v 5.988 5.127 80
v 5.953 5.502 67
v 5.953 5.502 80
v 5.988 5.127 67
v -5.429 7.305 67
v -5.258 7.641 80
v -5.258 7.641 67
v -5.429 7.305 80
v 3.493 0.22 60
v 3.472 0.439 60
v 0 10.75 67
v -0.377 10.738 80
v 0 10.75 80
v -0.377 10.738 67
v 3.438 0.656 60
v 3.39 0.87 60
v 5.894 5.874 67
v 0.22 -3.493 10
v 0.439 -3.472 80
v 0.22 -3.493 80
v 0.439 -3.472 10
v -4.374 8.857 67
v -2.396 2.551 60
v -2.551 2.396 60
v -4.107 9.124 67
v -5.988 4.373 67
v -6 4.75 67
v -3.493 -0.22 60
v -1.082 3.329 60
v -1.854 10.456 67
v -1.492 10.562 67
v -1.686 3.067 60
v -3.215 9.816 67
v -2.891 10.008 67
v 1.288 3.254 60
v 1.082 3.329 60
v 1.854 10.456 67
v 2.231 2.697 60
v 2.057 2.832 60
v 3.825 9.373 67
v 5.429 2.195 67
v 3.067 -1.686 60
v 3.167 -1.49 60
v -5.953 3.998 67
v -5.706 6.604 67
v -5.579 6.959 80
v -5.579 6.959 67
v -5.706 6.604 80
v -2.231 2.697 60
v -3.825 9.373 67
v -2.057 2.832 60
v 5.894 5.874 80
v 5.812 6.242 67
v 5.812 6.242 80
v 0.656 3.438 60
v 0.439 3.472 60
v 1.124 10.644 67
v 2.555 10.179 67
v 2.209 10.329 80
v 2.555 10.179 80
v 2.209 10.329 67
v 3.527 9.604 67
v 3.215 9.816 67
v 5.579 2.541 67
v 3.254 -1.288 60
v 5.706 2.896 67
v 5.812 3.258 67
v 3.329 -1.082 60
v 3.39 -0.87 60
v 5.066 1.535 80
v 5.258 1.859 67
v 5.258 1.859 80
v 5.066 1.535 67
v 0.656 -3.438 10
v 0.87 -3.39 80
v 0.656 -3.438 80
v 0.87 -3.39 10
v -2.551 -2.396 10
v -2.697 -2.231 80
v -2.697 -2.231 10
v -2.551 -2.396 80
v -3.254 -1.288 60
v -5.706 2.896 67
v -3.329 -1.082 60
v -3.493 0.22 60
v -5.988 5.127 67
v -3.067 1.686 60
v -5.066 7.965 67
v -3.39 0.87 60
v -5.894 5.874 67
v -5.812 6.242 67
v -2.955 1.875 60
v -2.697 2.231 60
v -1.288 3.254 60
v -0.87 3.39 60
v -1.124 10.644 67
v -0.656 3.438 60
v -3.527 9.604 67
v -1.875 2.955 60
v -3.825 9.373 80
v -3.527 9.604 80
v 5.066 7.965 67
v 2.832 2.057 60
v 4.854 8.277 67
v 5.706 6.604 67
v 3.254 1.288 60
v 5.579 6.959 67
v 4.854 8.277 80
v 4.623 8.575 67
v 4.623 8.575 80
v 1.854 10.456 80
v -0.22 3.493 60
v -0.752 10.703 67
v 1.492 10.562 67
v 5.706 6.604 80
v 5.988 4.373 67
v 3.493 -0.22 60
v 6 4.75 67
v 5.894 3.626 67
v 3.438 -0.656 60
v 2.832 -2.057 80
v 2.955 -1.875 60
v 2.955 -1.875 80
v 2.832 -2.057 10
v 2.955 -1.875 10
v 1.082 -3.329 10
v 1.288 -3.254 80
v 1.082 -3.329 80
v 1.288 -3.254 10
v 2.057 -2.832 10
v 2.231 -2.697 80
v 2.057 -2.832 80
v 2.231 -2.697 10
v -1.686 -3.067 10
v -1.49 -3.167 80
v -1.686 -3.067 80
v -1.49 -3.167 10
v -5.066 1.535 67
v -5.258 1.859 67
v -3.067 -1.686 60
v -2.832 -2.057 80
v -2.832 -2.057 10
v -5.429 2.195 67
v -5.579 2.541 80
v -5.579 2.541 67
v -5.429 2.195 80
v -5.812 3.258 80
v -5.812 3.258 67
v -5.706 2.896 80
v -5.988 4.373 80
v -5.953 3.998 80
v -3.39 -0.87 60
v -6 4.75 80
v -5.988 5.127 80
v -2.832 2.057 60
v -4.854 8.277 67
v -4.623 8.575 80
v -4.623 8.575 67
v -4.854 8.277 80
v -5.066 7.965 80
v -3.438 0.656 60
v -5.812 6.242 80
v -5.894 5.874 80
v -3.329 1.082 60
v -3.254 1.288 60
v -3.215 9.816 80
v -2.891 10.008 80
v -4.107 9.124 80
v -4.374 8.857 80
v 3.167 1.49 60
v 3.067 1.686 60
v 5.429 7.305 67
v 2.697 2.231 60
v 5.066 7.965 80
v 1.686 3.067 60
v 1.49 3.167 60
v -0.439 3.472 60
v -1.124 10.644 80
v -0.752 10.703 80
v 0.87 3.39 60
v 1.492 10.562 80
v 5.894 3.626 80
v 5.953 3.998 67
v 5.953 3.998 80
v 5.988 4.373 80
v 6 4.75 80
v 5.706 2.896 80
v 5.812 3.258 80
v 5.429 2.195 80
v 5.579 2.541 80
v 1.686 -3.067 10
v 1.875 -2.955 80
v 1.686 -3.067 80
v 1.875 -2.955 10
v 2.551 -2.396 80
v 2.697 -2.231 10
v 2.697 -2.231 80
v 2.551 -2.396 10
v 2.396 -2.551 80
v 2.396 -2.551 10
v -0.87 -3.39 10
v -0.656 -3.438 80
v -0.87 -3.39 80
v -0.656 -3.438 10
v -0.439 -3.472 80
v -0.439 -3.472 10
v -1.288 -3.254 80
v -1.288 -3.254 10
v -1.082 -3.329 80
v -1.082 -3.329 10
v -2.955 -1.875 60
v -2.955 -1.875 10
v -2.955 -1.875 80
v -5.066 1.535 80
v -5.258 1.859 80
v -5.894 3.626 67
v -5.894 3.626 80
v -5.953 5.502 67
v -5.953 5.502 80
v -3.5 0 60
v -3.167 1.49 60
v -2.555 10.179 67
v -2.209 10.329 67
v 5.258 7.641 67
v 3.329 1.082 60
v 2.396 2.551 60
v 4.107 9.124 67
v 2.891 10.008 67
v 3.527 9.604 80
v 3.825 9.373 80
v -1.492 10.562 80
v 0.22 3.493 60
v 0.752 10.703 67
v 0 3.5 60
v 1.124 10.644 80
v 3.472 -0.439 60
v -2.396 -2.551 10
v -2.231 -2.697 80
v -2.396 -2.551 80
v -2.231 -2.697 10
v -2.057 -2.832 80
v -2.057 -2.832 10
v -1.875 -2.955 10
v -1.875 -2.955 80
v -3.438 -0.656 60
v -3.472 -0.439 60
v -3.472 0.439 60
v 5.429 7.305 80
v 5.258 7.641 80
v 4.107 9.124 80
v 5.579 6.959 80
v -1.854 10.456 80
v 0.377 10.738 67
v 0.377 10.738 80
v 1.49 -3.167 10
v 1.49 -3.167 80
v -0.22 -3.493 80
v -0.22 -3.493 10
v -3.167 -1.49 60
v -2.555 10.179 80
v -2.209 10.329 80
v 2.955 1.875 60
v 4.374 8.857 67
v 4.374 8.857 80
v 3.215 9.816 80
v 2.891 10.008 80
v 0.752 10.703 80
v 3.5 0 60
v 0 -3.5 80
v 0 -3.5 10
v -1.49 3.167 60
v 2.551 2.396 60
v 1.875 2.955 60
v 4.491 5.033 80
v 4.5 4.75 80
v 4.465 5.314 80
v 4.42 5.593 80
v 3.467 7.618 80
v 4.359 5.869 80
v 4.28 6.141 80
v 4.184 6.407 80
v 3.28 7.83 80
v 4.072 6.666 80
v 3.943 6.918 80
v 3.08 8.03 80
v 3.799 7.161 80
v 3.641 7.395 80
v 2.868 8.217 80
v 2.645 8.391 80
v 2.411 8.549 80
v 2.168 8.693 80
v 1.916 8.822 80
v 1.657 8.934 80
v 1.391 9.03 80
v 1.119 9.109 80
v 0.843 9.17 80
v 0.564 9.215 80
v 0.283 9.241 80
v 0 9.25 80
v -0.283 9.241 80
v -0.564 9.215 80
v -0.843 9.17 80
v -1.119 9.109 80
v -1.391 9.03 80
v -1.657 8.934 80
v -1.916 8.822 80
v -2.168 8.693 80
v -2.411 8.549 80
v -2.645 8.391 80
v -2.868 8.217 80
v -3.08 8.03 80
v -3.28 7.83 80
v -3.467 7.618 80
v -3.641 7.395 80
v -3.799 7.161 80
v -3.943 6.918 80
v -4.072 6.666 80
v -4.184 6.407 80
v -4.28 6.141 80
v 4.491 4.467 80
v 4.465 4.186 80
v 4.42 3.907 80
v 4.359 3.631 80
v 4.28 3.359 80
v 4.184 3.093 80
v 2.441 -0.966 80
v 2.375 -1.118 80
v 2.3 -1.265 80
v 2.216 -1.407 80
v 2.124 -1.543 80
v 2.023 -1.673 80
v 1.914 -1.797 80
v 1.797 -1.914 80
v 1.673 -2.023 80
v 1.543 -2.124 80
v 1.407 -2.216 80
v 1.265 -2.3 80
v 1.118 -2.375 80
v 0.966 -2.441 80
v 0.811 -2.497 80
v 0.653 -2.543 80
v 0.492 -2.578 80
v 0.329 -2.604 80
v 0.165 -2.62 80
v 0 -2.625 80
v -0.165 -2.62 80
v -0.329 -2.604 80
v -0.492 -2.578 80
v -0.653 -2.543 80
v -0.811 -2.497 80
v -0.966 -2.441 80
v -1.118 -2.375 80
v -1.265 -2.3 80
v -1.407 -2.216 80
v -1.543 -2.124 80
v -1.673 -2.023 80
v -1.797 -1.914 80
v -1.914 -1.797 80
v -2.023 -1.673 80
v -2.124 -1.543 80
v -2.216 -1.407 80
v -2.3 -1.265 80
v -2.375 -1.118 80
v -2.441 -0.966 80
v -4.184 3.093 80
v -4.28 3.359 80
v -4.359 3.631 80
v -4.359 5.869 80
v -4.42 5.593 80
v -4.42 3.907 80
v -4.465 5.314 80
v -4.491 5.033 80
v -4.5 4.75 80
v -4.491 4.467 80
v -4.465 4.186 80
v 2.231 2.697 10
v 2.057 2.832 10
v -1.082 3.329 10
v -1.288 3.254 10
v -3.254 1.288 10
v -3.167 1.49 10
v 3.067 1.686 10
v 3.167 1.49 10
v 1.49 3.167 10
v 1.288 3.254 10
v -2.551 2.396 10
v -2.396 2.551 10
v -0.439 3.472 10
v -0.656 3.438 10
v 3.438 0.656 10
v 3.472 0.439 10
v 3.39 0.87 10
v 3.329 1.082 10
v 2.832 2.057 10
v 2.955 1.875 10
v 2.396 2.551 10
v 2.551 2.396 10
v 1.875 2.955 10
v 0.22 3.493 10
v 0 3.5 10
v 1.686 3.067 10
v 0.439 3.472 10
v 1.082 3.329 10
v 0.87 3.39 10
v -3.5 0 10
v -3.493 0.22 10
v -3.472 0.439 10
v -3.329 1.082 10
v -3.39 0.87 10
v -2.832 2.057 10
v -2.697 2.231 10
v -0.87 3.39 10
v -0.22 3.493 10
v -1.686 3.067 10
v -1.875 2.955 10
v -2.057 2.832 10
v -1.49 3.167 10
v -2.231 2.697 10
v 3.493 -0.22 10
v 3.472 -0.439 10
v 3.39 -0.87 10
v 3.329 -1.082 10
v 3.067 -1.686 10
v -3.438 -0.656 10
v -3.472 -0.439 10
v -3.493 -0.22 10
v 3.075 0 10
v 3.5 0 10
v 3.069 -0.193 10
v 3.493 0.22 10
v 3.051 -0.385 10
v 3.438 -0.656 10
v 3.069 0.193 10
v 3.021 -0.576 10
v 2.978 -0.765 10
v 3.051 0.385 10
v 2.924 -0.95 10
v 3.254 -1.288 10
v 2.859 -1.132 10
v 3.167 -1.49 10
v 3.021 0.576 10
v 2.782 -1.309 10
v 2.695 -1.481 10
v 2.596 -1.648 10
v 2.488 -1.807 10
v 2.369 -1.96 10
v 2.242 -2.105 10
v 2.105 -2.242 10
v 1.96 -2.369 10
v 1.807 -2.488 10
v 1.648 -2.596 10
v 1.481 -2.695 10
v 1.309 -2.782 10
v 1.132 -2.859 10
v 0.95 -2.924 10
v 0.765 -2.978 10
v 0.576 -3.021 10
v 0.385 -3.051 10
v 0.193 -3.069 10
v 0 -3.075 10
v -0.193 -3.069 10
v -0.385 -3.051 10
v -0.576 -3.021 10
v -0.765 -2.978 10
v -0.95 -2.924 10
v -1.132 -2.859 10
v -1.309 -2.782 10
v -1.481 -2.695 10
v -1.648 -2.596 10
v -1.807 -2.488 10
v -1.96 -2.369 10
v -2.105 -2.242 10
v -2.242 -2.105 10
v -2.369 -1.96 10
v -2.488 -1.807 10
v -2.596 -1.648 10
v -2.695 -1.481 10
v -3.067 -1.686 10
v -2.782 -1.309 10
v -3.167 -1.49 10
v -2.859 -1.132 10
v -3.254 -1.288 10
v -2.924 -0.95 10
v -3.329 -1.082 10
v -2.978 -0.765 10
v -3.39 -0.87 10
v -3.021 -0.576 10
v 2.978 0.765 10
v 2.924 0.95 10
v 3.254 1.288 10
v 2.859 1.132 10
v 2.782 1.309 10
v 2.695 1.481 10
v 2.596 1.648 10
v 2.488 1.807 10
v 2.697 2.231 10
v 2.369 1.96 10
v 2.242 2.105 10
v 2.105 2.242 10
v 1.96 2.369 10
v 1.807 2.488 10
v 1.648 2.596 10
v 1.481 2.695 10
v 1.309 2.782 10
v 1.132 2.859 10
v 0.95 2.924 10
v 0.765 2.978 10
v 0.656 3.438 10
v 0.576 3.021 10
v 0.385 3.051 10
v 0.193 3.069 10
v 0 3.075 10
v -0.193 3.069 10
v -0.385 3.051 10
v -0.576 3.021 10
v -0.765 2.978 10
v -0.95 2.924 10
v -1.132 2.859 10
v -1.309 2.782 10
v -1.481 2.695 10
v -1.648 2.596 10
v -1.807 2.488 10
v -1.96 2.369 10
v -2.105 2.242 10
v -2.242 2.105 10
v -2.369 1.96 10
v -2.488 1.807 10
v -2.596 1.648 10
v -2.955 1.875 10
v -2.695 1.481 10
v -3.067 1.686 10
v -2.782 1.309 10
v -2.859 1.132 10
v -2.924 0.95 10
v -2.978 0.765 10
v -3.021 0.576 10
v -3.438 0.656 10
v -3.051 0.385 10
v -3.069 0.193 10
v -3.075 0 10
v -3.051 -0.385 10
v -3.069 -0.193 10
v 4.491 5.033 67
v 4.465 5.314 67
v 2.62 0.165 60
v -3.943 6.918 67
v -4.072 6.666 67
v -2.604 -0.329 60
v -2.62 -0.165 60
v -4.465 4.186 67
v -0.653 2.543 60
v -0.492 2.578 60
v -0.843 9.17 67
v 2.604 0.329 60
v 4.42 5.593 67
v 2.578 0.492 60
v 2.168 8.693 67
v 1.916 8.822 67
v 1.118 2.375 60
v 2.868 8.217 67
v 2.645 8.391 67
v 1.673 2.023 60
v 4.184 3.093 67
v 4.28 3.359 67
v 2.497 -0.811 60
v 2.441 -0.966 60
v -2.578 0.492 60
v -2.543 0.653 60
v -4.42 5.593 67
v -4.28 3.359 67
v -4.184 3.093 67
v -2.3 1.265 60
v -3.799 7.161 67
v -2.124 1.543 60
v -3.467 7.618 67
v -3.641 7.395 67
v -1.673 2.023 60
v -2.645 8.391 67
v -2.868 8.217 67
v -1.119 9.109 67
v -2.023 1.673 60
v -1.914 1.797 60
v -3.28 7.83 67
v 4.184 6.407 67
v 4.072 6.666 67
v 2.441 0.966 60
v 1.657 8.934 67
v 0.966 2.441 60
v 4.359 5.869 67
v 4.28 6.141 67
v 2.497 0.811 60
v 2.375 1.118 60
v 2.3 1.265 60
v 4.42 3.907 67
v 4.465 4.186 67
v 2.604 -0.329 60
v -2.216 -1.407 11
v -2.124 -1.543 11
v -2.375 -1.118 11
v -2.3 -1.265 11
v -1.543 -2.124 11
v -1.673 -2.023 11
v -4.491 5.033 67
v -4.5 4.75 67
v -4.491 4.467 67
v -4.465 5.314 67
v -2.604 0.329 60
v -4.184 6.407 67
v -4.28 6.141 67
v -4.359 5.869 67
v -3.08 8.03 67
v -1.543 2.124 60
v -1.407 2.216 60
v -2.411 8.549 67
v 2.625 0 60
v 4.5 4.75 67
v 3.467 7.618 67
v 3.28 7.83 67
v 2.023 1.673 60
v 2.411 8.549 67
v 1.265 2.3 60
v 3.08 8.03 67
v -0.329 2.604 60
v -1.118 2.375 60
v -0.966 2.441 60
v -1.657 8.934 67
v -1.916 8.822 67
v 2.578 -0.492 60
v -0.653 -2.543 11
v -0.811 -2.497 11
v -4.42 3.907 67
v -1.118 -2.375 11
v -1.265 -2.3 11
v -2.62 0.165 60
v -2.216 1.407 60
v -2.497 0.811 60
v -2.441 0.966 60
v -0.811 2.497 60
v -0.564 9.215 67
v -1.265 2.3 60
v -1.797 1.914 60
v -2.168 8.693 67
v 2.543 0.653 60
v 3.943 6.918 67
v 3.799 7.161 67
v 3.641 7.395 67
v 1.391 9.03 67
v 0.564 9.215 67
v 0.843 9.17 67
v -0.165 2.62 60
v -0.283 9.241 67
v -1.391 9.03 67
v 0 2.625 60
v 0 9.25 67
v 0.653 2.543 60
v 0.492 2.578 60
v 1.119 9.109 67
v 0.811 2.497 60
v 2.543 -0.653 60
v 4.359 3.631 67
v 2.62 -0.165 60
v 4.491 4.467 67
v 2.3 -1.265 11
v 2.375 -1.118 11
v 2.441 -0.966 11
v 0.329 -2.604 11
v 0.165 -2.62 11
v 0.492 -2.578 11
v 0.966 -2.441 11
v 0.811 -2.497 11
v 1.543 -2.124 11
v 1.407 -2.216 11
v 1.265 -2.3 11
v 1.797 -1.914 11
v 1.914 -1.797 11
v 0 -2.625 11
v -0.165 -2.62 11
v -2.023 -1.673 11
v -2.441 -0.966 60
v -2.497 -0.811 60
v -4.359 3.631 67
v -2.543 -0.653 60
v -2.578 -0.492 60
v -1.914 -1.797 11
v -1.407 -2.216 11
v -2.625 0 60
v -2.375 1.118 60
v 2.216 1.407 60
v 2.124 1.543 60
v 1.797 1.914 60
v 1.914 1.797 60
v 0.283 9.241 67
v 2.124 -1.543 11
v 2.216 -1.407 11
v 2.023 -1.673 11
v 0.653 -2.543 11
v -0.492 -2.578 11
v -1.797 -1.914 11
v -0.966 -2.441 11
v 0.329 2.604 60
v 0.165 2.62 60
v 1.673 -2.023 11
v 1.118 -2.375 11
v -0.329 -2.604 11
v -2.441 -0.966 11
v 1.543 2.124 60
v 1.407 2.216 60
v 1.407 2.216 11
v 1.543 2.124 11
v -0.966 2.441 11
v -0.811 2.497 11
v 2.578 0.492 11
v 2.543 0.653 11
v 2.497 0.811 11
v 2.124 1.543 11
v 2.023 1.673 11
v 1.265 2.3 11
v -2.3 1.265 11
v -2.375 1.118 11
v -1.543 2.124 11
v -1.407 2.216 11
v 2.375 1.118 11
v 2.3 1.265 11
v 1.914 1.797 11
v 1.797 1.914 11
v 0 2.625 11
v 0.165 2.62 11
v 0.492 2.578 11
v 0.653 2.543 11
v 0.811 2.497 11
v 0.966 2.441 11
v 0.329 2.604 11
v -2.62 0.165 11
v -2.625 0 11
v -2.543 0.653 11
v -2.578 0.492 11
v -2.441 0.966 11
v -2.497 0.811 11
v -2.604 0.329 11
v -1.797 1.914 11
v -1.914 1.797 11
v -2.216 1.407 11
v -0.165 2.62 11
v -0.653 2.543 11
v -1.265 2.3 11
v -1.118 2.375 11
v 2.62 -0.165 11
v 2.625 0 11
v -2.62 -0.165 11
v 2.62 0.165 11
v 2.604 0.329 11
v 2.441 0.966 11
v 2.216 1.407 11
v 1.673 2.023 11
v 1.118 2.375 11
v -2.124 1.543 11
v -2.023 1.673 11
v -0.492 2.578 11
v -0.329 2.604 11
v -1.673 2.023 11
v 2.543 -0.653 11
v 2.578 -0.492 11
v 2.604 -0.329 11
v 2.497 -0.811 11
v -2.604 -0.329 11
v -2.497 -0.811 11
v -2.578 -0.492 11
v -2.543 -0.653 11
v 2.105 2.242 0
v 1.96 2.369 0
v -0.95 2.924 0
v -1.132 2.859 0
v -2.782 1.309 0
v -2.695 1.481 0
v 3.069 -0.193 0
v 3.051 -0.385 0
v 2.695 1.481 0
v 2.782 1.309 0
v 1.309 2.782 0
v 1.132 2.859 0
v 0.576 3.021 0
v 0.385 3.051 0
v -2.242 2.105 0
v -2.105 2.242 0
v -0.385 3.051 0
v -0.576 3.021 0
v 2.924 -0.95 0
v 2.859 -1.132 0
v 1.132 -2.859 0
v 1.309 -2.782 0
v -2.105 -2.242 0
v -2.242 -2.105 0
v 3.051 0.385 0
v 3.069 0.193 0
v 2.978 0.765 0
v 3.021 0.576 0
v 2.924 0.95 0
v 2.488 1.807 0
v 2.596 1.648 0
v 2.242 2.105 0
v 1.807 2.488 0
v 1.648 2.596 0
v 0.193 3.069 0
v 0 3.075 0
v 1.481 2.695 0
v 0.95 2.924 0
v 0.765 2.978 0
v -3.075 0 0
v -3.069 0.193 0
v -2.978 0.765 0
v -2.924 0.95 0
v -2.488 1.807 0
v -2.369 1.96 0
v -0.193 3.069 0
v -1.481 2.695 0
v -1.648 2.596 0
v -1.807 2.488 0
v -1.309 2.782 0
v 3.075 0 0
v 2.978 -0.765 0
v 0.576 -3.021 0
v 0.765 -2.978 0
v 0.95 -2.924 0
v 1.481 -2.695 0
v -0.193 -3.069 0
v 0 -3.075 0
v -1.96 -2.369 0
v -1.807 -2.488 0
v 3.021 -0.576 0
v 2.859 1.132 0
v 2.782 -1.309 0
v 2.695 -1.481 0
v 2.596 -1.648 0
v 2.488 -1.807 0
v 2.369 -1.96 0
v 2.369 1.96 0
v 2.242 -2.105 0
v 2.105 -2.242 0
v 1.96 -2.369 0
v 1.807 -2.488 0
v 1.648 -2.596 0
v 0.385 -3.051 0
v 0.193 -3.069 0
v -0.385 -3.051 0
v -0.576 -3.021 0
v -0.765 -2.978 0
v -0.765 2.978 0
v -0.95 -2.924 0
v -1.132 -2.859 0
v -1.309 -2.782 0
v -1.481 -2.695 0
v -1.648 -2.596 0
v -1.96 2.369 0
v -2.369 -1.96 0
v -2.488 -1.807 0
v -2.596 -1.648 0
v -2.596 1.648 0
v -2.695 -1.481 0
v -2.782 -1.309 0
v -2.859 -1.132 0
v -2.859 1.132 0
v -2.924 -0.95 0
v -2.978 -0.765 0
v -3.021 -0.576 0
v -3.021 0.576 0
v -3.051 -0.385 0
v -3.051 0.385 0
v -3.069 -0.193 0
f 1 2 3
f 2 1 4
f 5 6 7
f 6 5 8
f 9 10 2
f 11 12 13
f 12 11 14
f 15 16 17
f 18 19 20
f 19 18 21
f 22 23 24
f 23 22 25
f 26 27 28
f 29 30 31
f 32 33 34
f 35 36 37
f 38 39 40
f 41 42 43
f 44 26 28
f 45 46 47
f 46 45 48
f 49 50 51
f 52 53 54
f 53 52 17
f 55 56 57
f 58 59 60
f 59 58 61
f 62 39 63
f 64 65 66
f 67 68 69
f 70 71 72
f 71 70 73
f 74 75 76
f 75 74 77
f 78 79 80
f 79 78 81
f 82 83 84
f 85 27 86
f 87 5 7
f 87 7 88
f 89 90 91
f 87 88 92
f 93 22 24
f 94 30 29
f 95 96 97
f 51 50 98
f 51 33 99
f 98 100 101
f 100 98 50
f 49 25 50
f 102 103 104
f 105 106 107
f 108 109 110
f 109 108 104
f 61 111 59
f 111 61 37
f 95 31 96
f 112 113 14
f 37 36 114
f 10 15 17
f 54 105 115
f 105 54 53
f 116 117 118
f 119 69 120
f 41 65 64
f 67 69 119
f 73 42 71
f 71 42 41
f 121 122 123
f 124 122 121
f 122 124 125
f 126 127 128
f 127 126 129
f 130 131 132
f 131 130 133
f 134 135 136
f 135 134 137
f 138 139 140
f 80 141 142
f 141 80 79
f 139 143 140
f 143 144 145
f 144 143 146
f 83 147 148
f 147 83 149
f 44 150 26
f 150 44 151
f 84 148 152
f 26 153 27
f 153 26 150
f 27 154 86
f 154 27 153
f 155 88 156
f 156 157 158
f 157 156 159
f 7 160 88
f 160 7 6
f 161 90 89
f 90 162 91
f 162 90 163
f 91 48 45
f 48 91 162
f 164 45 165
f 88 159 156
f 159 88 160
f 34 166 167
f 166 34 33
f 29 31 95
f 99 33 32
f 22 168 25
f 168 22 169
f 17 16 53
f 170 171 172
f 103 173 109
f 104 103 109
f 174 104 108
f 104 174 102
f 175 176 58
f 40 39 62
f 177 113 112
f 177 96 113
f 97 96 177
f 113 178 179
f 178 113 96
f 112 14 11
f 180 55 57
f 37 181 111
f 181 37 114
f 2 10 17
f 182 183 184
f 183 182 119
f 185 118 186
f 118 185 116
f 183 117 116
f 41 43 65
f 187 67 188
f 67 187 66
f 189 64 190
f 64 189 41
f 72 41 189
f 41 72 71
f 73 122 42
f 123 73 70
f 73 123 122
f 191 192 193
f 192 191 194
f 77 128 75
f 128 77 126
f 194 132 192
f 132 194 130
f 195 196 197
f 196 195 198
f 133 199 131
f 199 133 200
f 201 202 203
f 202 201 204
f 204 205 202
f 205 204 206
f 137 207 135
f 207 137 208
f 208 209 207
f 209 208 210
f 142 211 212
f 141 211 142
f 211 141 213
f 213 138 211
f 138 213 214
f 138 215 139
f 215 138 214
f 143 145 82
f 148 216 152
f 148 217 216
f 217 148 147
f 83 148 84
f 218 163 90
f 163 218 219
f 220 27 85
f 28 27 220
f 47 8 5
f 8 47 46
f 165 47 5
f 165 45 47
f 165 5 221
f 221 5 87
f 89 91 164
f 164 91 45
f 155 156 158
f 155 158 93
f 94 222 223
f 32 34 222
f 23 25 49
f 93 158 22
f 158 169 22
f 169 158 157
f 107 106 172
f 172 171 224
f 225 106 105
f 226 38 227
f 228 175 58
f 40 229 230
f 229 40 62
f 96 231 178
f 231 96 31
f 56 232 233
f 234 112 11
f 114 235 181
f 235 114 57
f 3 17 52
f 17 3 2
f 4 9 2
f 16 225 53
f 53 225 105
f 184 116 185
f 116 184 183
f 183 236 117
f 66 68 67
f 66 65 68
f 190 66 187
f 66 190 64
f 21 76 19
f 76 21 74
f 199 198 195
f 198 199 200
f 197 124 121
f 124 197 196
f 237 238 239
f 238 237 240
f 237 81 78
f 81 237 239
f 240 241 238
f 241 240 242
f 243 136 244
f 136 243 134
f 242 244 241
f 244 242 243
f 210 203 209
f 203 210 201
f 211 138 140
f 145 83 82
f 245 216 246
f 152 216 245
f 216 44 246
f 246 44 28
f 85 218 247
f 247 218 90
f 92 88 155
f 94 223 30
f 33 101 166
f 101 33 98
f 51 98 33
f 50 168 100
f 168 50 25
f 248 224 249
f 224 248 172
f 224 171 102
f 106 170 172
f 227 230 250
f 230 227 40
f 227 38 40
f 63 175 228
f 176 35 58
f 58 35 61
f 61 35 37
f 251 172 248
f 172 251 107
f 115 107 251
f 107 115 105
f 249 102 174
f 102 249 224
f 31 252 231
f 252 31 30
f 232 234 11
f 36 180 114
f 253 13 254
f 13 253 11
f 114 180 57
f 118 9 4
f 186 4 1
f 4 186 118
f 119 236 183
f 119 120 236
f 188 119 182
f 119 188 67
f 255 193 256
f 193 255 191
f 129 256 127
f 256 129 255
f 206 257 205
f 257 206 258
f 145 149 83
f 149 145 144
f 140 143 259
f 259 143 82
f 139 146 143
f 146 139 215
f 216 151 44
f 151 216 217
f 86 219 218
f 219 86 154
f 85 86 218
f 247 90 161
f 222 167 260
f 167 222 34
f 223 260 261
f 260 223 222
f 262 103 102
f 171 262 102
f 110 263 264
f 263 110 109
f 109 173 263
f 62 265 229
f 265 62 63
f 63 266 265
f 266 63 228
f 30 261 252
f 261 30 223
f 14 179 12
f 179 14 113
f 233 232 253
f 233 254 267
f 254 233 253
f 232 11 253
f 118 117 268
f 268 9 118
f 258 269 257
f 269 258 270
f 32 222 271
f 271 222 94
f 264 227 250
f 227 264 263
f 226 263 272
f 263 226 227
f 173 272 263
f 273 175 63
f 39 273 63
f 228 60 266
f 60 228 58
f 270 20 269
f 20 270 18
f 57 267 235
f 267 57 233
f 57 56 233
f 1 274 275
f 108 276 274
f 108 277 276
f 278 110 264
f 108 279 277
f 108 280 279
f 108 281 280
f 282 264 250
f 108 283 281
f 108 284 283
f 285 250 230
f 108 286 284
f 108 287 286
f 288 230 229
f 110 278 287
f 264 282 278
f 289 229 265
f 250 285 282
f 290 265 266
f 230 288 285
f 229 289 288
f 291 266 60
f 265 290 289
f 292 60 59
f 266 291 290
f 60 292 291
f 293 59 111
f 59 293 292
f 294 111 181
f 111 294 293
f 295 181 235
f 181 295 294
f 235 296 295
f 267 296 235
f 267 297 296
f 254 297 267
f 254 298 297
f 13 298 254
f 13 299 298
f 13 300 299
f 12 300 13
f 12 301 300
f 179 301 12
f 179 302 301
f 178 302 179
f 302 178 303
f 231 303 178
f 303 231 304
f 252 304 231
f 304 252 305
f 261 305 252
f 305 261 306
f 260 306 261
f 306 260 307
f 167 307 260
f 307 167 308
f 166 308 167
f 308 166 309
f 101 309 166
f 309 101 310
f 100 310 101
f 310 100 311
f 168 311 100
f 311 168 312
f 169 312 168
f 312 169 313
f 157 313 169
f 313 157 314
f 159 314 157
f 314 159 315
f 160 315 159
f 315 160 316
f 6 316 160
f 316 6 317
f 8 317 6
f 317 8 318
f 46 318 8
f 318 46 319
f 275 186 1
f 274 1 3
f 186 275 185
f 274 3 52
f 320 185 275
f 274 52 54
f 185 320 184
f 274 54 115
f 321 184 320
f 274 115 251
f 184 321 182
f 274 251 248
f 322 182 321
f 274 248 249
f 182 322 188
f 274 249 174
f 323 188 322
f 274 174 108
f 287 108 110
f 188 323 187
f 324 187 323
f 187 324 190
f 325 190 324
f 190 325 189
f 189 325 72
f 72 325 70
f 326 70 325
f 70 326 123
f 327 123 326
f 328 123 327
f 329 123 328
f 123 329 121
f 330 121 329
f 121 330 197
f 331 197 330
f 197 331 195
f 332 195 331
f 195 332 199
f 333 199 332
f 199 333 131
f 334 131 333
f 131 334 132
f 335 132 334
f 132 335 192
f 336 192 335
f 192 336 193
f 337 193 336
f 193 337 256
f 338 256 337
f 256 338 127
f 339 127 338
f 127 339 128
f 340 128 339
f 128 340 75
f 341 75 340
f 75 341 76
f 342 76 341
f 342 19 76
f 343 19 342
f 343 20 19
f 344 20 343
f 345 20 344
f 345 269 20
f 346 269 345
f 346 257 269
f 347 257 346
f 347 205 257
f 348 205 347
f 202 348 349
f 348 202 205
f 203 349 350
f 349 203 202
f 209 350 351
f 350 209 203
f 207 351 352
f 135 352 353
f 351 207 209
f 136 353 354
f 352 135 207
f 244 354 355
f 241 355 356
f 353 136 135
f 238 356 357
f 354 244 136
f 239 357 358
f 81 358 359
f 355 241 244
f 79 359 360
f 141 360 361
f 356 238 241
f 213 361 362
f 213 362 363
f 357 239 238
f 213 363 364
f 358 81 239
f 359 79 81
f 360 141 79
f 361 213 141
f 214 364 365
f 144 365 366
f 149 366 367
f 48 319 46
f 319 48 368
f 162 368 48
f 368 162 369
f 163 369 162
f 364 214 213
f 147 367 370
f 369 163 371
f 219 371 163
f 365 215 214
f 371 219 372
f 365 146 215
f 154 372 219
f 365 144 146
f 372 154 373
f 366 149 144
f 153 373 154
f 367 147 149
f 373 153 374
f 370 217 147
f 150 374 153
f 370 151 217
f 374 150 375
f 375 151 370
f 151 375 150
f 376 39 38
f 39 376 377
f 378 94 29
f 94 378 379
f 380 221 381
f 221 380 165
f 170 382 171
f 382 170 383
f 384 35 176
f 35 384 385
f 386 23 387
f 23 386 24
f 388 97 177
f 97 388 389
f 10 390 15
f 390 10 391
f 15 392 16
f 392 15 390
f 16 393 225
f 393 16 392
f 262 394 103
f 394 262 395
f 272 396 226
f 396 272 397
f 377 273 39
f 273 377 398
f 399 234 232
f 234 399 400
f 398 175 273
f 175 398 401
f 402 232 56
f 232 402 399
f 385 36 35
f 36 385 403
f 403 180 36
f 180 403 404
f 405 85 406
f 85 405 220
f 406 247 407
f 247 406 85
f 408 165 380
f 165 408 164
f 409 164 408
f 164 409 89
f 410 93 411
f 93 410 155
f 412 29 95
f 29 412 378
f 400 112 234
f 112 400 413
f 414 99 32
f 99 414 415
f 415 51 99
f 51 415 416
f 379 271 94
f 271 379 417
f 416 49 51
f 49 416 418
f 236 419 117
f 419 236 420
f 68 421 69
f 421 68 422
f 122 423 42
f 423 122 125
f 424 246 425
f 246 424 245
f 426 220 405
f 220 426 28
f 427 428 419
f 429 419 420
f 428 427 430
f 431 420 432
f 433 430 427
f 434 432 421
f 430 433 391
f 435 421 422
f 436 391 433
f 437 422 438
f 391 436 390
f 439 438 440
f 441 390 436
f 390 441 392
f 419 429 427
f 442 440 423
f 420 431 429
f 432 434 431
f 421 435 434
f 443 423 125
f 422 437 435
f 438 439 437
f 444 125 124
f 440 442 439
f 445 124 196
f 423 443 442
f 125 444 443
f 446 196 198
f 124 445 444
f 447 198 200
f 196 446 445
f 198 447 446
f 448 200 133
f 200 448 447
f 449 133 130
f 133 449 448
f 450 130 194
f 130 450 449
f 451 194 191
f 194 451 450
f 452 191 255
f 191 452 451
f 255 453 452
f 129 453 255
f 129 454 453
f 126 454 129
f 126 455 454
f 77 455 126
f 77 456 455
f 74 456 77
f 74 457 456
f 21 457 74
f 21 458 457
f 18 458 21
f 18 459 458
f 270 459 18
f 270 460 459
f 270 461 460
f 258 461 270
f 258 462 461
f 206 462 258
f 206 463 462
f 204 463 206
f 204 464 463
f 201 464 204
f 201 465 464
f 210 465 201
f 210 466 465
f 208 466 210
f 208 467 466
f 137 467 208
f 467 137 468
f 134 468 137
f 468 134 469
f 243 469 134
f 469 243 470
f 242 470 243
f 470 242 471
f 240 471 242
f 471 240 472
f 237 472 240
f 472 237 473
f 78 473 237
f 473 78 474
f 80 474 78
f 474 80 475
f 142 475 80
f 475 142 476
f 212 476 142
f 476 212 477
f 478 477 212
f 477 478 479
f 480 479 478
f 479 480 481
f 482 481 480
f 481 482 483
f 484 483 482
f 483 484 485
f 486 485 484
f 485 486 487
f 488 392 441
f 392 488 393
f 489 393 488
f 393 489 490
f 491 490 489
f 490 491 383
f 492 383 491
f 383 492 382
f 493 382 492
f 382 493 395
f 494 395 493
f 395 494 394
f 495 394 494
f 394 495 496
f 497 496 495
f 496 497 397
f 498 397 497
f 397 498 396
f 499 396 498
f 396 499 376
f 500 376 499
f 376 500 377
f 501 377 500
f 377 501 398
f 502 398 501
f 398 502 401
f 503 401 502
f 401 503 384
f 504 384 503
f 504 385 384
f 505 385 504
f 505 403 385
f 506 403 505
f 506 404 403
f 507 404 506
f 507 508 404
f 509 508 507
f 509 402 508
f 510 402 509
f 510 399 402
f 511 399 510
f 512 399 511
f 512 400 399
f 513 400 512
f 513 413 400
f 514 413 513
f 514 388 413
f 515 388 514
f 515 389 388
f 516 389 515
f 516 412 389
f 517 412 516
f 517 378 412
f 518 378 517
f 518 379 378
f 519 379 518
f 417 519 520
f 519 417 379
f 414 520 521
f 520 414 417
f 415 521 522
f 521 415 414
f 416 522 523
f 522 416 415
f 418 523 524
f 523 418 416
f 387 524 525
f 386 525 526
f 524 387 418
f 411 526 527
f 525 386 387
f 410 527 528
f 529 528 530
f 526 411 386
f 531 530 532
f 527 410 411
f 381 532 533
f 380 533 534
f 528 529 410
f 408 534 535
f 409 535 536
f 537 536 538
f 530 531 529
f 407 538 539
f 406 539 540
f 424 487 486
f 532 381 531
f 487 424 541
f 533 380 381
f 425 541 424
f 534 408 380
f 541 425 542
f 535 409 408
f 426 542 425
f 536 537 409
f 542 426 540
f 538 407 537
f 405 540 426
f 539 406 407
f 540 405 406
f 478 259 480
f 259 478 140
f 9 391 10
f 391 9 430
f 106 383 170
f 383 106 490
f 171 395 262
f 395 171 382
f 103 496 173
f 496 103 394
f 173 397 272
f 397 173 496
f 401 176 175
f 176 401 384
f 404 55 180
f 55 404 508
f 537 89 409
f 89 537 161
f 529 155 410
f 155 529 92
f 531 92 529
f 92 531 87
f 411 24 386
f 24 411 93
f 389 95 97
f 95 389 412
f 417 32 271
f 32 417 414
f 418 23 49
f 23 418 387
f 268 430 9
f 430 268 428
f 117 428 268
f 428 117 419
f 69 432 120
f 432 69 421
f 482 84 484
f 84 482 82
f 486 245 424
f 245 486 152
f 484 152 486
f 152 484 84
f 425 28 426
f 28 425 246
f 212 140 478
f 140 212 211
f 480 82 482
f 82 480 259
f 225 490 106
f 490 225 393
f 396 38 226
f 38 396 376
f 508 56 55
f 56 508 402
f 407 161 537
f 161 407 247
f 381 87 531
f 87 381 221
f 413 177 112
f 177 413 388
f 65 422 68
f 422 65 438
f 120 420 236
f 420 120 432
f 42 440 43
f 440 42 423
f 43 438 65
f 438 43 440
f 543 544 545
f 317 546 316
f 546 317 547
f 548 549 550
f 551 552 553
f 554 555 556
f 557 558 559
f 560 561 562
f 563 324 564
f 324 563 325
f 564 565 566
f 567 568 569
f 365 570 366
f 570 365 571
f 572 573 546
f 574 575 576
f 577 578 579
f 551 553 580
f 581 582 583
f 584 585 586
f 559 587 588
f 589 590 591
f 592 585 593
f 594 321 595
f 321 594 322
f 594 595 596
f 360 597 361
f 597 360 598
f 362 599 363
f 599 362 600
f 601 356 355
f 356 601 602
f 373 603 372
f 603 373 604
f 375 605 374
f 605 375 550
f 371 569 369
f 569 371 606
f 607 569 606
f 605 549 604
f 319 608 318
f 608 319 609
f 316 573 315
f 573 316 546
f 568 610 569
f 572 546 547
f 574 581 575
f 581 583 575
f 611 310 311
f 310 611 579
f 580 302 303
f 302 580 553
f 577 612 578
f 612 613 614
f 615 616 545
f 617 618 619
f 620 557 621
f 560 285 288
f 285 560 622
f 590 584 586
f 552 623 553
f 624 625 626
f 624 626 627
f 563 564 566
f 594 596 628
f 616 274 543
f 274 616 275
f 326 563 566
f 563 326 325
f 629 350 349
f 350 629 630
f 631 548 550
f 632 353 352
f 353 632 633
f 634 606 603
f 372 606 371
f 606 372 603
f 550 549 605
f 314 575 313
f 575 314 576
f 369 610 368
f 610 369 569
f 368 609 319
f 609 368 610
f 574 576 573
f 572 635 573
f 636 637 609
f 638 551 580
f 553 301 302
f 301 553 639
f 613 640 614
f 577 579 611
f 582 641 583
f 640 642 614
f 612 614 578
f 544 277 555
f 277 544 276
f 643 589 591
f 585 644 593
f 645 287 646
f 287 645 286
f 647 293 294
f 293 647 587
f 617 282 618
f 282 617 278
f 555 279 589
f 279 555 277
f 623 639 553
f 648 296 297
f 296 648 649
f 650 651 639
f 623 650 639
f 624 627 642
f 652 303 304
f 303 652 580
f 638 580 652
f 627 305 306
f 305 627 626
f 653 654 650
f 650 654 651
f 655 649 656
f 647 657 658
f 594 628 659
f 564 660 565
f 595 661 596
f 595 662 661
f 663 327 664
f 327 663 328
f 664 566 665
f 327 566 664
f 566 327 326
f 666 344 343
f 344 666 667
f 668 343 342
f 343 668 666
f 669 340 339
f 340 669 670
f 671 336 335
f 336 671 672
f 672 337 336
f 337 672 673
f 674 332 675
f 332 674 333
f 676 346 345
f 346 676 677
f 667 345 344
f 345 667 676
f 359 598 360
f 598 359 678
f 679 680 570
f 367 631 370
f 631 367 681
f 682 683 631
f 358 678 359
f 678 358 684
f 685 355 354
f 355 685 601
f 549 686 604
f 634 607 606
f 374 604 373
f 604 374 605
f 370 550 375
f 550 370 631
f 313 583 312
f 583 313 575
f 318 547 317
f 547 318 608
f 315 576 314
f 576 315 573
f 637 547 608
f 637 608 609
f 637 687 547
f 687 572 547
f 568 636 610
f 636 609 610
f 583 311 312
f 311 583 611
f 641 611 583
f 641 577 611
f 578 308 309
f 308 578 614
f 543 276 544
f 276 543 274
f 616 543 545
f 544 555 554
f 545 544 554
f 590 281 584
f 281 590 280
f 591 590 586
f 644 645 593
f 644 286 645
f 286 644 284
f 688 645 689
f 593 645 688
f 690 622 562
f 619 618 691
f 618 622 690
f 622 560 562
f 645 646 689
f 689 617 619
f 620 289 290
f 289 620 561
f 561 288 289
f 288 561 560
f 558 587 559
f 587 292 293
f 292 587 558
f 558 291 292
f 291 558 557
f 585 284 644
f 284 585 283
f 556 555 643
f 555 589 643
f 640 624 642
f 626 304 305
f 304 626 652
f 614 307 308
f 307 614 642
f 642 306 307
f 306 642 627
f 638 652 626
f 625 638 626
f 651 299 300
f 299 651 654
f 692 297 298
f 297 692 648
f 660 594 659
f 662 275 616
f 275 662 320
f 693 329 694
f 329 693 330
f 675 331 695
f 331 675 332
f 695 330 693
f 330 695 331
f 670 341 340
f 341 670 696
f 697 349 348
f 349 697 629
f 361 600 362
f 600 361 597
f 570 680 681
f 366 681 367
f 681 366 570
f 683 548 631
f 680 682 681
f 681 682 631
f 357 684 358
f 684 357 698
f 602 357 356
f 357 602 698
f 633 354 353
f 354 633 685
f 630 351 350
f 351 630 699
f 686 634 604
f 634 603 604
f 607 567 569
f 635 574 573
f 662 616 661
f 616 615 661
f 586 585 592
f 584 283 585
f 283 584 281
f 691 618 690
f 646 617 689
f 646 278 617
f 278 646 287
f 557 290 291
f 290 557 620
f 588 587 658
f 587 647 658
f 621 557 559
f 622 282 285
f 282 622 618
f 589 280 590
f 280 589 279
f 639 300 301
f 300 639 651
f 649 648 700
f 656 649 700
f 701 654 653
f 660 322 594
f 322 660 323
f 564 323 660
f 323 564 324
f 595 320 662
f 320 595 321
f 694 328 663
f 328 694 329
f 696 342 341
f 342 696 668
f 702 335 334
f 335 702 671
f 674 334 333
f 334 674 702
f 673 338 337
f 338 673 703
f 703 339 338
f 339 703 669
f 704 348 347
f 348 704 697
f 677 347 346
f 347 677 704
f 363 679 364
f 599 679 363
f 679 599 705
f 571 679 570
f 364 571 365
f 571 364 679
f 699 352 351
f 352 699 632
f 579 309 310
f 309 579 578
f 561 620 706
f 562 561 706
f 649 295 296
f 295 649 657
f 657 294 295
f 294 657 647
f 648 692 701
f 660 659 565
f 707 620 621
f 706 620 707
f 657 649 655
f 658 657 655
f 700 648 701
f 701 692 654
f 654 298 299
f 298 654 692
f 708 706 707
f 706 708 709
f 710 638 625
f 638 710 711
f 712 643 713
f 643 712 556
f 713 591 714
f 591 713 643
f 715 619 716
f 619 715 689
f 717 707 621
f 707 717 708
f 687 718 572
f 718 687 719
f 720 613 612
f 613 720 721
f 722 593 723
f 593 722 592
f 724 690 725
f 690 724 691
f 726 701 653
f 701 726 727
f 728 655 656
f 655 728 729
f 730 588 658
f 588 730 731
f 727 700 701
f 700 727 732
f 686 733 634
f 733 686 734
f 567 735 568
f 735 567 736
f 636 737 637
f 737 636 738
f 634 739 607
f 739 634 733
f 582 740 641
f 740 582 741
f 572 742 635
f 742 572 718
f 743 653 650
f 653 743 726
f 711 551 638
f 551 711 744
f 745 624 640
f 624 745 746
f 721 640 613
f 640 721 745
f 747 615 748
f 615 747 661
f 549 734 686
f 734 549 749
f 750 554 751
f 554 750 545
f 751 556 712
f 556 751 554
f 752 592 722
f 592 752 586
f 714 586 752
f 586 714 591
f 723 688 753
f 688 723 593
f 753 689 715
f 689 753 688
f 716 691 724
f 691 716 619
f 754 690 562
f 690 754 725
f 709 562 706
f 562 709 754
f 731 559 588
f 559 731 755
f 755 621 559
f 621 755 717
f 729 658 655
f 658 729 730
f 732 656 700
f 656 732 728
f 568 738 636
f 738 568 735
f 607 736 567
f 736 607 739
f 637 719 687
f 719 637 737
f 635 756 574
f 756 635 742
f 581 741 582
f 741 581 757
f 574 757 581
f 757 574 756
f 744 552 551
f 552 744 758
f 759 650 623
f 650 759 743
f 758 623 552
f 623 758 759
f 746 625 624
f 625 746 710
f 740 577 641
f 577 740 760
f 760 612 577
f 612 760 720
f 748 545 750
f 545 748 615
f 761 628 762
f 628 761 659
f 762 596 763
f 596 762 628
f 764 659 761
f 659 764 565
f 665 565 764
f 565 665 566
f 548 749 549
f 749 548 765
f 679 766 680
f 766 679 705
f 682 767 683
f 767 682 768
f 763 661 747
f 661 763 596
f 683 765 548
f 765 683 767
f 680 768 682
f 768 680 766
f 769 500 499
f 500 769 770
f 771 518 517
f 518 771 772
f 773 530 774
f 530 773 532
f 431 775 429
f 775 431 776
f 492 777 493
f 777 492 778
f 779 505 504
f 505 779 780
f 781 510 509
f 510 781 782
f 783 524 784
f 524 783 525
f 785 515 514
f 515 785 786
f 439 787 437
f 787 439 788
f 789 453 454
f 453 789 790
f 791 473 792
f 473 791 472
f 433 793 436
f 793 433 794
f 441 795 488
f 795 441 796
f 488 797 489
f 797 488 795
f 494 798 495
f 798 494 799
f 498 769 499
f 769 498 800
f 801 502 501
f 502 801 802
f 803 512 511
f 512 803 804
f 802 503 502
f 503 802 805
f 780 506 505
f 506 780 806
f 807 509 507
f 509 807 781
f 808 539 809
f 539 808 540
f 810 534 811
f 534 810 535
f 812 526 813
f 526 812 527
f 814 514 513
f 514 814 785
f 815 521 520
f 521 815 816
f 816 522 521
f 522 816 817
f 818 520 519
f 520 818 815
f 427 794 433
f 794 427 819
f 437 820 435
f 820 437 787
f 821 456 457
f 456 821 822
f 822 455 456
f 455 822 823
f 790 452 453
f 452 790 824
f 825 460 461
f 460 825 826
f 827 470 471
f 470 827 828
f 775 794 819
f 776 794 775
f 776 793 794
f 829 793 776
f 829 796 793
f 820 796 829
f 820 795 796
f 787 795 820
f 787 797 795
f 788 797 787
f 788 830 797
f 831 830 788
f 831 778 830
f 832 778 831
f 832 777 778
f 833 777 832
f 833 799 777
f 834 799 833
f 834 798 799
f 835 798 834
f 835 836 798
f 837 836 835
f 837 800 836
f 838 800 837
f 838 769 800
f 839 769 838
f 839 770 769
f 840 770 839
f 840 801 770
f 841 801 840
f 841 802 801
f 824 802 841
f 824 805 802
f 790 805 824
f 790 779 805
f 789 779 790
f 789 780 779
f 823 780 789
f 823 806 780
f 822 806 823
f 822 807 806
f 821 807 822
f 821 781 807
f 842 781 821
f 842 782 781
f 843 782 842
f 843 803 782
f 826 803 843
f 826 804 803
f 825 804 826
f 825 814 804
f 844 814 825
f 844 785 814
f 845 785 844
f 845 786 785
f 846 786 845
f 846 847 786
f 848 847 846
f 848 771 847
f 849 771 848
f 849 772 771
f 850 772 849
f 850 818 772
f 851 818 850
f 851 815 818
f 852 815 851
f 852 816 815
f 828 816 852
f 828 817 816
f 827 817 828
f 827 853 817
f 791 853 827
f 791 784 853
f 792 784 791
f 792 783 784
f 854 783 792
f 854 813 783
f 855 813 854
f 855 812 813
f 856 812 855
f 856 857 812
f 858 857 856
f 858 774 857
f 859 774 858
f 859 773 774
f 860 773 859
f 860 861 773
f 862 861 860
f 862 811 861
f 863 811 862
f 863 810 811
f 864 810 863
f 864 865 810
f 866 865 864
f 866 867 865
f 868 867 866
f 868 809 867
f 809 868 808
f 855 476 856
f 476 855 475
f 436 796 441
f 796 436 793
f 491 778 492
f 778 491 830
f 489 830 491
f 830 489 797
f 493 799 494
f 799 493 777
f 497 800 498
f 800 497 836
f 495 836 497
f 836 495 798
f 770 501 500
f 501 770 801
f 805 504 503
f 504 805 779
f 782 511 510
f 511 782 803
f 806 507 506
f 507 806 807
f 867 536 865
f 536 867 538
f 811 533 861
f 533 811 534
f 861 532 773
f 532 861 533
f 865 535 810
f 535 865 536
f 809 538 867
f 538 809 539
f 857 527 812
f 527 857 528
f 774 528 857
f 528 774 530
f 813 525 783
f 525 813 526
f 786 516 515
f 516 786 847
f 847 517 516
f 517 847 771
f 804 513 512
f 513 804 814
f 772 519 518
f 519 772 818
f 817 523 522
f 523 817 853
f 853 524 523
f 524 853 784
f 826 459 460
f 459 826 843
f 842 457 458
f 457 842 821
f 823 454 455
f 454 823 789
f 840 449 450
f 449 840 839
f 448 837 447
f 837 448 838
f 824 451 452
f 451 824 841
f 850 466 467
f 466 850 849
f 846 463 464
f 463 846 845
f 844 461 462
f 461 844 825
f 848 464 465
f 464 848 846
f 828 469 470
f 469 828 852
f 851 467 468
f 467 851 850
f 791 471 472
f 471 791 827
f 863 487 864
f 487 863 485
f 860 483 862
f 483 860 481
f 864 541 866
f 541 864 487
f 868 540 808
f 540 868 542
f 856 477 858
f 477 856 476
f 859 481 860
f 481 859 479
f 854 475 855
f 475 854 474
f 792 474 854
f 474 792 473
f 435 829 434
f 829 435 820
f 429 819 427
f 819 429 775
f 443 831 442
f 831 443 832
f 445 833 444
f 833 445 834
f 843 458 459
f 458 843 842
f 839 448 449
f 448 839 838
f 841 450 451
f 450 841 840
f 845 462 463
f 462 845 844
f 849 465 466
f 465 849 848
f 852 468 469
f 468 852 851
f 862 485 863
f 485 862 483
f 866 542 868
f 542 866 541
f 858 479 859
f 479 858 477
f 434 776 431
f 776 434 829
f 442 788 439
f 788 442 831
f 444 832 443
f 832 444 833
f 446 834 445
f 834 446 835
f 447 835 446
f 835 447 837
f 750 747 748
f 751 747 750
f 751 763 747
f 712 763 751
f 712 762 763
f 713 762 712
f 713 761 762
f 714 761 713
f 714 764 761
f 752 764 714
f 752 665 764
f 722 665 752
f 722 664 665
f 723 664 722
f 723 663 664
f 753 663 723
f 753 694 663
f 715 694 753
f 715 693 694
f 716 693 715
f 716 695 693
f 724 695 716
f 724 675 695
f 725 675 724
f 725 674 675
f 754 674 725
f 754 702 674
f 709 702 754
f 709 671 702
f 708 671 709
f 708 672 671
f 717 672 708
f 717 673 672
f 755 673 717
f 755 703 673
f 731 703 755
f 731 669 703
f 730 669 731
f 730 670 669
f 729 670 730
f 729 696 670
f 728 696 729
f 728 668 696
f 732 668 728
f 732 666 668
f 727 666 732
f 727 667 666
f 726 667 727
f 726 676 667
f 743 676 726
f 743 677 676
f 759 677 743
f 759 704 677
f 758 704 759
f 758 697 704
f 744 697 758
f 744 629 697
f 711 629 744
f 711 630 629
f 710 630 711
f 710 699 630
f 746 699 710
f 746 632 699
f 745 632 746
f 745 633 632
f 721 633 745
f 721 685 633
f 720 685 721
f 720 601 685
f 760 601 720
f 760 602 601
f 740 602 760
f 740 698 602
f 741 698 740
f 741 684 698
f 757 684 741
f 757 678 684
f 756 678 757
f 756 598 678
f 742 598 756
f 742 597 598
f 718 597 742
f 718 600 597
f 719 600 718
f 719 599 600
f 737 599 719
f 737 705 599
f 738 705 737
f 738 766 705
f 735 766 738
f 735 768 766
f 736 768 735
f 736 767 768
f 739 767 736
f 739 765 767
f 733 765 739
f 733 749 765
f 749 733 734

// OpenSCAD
$fn=100;
pin_height=10;
bottom_radius = 3.5;
bottom_height = 50;
taper_height=7;
top_radius = 6; // radius of the head part
top_height = 13;

module thing(scalefactor=1) {
            union() { // collect all parts, scale them and use this as "drill"
            scale([scalefactor, scalefactor, 1]){
                cylinder(r=bottom_radius,h=bottom_height); // cylinder for spine
                translate([0,0,bottom_height]) {
                    hull(){ // taper
                        cylinder(r=bottom_radius,h=0.01); // bottom connector of taper
                        translate([0,((bottom_radius+top_radius)*0.5)/scalefactor, taper_height]) cylinder(r=top_radius,h=0.01); // top connector of taper
                        translate([0, 0, taper_height]) cylinder(r=bottom_radius,h=0.01); // top connector of taper
                        }
                        hull(){
                            translate([0,((bottom_radius+top_radius)*0.5)/scalefactor,taper_height]) cylinder(r=top_radius,h=top_height); // cylinder for head
                            translate([0,0,taper_height]) cylinder(r=bottom_radius,h=top_height); // continuation of bottom cylinder
                        }
                    }                
            }
        }
    }

cylinder(d=6.15,h=pin_height); // bottom pin
translate([0,0,pin_height]) cylinder(r=bottom_radius, h=1); // close the bottom of the bottom cylinder. needed if 'bottom_radius + "wall thickness' are bigger than the diameter of the bottom pin.'
translate([0,0,pin_height]){ // shift everything else above the bottom pin
    difference() { // use this 'difference' as "drill"
        thing();
        thing(scalefactor=0.75);
    }
}
